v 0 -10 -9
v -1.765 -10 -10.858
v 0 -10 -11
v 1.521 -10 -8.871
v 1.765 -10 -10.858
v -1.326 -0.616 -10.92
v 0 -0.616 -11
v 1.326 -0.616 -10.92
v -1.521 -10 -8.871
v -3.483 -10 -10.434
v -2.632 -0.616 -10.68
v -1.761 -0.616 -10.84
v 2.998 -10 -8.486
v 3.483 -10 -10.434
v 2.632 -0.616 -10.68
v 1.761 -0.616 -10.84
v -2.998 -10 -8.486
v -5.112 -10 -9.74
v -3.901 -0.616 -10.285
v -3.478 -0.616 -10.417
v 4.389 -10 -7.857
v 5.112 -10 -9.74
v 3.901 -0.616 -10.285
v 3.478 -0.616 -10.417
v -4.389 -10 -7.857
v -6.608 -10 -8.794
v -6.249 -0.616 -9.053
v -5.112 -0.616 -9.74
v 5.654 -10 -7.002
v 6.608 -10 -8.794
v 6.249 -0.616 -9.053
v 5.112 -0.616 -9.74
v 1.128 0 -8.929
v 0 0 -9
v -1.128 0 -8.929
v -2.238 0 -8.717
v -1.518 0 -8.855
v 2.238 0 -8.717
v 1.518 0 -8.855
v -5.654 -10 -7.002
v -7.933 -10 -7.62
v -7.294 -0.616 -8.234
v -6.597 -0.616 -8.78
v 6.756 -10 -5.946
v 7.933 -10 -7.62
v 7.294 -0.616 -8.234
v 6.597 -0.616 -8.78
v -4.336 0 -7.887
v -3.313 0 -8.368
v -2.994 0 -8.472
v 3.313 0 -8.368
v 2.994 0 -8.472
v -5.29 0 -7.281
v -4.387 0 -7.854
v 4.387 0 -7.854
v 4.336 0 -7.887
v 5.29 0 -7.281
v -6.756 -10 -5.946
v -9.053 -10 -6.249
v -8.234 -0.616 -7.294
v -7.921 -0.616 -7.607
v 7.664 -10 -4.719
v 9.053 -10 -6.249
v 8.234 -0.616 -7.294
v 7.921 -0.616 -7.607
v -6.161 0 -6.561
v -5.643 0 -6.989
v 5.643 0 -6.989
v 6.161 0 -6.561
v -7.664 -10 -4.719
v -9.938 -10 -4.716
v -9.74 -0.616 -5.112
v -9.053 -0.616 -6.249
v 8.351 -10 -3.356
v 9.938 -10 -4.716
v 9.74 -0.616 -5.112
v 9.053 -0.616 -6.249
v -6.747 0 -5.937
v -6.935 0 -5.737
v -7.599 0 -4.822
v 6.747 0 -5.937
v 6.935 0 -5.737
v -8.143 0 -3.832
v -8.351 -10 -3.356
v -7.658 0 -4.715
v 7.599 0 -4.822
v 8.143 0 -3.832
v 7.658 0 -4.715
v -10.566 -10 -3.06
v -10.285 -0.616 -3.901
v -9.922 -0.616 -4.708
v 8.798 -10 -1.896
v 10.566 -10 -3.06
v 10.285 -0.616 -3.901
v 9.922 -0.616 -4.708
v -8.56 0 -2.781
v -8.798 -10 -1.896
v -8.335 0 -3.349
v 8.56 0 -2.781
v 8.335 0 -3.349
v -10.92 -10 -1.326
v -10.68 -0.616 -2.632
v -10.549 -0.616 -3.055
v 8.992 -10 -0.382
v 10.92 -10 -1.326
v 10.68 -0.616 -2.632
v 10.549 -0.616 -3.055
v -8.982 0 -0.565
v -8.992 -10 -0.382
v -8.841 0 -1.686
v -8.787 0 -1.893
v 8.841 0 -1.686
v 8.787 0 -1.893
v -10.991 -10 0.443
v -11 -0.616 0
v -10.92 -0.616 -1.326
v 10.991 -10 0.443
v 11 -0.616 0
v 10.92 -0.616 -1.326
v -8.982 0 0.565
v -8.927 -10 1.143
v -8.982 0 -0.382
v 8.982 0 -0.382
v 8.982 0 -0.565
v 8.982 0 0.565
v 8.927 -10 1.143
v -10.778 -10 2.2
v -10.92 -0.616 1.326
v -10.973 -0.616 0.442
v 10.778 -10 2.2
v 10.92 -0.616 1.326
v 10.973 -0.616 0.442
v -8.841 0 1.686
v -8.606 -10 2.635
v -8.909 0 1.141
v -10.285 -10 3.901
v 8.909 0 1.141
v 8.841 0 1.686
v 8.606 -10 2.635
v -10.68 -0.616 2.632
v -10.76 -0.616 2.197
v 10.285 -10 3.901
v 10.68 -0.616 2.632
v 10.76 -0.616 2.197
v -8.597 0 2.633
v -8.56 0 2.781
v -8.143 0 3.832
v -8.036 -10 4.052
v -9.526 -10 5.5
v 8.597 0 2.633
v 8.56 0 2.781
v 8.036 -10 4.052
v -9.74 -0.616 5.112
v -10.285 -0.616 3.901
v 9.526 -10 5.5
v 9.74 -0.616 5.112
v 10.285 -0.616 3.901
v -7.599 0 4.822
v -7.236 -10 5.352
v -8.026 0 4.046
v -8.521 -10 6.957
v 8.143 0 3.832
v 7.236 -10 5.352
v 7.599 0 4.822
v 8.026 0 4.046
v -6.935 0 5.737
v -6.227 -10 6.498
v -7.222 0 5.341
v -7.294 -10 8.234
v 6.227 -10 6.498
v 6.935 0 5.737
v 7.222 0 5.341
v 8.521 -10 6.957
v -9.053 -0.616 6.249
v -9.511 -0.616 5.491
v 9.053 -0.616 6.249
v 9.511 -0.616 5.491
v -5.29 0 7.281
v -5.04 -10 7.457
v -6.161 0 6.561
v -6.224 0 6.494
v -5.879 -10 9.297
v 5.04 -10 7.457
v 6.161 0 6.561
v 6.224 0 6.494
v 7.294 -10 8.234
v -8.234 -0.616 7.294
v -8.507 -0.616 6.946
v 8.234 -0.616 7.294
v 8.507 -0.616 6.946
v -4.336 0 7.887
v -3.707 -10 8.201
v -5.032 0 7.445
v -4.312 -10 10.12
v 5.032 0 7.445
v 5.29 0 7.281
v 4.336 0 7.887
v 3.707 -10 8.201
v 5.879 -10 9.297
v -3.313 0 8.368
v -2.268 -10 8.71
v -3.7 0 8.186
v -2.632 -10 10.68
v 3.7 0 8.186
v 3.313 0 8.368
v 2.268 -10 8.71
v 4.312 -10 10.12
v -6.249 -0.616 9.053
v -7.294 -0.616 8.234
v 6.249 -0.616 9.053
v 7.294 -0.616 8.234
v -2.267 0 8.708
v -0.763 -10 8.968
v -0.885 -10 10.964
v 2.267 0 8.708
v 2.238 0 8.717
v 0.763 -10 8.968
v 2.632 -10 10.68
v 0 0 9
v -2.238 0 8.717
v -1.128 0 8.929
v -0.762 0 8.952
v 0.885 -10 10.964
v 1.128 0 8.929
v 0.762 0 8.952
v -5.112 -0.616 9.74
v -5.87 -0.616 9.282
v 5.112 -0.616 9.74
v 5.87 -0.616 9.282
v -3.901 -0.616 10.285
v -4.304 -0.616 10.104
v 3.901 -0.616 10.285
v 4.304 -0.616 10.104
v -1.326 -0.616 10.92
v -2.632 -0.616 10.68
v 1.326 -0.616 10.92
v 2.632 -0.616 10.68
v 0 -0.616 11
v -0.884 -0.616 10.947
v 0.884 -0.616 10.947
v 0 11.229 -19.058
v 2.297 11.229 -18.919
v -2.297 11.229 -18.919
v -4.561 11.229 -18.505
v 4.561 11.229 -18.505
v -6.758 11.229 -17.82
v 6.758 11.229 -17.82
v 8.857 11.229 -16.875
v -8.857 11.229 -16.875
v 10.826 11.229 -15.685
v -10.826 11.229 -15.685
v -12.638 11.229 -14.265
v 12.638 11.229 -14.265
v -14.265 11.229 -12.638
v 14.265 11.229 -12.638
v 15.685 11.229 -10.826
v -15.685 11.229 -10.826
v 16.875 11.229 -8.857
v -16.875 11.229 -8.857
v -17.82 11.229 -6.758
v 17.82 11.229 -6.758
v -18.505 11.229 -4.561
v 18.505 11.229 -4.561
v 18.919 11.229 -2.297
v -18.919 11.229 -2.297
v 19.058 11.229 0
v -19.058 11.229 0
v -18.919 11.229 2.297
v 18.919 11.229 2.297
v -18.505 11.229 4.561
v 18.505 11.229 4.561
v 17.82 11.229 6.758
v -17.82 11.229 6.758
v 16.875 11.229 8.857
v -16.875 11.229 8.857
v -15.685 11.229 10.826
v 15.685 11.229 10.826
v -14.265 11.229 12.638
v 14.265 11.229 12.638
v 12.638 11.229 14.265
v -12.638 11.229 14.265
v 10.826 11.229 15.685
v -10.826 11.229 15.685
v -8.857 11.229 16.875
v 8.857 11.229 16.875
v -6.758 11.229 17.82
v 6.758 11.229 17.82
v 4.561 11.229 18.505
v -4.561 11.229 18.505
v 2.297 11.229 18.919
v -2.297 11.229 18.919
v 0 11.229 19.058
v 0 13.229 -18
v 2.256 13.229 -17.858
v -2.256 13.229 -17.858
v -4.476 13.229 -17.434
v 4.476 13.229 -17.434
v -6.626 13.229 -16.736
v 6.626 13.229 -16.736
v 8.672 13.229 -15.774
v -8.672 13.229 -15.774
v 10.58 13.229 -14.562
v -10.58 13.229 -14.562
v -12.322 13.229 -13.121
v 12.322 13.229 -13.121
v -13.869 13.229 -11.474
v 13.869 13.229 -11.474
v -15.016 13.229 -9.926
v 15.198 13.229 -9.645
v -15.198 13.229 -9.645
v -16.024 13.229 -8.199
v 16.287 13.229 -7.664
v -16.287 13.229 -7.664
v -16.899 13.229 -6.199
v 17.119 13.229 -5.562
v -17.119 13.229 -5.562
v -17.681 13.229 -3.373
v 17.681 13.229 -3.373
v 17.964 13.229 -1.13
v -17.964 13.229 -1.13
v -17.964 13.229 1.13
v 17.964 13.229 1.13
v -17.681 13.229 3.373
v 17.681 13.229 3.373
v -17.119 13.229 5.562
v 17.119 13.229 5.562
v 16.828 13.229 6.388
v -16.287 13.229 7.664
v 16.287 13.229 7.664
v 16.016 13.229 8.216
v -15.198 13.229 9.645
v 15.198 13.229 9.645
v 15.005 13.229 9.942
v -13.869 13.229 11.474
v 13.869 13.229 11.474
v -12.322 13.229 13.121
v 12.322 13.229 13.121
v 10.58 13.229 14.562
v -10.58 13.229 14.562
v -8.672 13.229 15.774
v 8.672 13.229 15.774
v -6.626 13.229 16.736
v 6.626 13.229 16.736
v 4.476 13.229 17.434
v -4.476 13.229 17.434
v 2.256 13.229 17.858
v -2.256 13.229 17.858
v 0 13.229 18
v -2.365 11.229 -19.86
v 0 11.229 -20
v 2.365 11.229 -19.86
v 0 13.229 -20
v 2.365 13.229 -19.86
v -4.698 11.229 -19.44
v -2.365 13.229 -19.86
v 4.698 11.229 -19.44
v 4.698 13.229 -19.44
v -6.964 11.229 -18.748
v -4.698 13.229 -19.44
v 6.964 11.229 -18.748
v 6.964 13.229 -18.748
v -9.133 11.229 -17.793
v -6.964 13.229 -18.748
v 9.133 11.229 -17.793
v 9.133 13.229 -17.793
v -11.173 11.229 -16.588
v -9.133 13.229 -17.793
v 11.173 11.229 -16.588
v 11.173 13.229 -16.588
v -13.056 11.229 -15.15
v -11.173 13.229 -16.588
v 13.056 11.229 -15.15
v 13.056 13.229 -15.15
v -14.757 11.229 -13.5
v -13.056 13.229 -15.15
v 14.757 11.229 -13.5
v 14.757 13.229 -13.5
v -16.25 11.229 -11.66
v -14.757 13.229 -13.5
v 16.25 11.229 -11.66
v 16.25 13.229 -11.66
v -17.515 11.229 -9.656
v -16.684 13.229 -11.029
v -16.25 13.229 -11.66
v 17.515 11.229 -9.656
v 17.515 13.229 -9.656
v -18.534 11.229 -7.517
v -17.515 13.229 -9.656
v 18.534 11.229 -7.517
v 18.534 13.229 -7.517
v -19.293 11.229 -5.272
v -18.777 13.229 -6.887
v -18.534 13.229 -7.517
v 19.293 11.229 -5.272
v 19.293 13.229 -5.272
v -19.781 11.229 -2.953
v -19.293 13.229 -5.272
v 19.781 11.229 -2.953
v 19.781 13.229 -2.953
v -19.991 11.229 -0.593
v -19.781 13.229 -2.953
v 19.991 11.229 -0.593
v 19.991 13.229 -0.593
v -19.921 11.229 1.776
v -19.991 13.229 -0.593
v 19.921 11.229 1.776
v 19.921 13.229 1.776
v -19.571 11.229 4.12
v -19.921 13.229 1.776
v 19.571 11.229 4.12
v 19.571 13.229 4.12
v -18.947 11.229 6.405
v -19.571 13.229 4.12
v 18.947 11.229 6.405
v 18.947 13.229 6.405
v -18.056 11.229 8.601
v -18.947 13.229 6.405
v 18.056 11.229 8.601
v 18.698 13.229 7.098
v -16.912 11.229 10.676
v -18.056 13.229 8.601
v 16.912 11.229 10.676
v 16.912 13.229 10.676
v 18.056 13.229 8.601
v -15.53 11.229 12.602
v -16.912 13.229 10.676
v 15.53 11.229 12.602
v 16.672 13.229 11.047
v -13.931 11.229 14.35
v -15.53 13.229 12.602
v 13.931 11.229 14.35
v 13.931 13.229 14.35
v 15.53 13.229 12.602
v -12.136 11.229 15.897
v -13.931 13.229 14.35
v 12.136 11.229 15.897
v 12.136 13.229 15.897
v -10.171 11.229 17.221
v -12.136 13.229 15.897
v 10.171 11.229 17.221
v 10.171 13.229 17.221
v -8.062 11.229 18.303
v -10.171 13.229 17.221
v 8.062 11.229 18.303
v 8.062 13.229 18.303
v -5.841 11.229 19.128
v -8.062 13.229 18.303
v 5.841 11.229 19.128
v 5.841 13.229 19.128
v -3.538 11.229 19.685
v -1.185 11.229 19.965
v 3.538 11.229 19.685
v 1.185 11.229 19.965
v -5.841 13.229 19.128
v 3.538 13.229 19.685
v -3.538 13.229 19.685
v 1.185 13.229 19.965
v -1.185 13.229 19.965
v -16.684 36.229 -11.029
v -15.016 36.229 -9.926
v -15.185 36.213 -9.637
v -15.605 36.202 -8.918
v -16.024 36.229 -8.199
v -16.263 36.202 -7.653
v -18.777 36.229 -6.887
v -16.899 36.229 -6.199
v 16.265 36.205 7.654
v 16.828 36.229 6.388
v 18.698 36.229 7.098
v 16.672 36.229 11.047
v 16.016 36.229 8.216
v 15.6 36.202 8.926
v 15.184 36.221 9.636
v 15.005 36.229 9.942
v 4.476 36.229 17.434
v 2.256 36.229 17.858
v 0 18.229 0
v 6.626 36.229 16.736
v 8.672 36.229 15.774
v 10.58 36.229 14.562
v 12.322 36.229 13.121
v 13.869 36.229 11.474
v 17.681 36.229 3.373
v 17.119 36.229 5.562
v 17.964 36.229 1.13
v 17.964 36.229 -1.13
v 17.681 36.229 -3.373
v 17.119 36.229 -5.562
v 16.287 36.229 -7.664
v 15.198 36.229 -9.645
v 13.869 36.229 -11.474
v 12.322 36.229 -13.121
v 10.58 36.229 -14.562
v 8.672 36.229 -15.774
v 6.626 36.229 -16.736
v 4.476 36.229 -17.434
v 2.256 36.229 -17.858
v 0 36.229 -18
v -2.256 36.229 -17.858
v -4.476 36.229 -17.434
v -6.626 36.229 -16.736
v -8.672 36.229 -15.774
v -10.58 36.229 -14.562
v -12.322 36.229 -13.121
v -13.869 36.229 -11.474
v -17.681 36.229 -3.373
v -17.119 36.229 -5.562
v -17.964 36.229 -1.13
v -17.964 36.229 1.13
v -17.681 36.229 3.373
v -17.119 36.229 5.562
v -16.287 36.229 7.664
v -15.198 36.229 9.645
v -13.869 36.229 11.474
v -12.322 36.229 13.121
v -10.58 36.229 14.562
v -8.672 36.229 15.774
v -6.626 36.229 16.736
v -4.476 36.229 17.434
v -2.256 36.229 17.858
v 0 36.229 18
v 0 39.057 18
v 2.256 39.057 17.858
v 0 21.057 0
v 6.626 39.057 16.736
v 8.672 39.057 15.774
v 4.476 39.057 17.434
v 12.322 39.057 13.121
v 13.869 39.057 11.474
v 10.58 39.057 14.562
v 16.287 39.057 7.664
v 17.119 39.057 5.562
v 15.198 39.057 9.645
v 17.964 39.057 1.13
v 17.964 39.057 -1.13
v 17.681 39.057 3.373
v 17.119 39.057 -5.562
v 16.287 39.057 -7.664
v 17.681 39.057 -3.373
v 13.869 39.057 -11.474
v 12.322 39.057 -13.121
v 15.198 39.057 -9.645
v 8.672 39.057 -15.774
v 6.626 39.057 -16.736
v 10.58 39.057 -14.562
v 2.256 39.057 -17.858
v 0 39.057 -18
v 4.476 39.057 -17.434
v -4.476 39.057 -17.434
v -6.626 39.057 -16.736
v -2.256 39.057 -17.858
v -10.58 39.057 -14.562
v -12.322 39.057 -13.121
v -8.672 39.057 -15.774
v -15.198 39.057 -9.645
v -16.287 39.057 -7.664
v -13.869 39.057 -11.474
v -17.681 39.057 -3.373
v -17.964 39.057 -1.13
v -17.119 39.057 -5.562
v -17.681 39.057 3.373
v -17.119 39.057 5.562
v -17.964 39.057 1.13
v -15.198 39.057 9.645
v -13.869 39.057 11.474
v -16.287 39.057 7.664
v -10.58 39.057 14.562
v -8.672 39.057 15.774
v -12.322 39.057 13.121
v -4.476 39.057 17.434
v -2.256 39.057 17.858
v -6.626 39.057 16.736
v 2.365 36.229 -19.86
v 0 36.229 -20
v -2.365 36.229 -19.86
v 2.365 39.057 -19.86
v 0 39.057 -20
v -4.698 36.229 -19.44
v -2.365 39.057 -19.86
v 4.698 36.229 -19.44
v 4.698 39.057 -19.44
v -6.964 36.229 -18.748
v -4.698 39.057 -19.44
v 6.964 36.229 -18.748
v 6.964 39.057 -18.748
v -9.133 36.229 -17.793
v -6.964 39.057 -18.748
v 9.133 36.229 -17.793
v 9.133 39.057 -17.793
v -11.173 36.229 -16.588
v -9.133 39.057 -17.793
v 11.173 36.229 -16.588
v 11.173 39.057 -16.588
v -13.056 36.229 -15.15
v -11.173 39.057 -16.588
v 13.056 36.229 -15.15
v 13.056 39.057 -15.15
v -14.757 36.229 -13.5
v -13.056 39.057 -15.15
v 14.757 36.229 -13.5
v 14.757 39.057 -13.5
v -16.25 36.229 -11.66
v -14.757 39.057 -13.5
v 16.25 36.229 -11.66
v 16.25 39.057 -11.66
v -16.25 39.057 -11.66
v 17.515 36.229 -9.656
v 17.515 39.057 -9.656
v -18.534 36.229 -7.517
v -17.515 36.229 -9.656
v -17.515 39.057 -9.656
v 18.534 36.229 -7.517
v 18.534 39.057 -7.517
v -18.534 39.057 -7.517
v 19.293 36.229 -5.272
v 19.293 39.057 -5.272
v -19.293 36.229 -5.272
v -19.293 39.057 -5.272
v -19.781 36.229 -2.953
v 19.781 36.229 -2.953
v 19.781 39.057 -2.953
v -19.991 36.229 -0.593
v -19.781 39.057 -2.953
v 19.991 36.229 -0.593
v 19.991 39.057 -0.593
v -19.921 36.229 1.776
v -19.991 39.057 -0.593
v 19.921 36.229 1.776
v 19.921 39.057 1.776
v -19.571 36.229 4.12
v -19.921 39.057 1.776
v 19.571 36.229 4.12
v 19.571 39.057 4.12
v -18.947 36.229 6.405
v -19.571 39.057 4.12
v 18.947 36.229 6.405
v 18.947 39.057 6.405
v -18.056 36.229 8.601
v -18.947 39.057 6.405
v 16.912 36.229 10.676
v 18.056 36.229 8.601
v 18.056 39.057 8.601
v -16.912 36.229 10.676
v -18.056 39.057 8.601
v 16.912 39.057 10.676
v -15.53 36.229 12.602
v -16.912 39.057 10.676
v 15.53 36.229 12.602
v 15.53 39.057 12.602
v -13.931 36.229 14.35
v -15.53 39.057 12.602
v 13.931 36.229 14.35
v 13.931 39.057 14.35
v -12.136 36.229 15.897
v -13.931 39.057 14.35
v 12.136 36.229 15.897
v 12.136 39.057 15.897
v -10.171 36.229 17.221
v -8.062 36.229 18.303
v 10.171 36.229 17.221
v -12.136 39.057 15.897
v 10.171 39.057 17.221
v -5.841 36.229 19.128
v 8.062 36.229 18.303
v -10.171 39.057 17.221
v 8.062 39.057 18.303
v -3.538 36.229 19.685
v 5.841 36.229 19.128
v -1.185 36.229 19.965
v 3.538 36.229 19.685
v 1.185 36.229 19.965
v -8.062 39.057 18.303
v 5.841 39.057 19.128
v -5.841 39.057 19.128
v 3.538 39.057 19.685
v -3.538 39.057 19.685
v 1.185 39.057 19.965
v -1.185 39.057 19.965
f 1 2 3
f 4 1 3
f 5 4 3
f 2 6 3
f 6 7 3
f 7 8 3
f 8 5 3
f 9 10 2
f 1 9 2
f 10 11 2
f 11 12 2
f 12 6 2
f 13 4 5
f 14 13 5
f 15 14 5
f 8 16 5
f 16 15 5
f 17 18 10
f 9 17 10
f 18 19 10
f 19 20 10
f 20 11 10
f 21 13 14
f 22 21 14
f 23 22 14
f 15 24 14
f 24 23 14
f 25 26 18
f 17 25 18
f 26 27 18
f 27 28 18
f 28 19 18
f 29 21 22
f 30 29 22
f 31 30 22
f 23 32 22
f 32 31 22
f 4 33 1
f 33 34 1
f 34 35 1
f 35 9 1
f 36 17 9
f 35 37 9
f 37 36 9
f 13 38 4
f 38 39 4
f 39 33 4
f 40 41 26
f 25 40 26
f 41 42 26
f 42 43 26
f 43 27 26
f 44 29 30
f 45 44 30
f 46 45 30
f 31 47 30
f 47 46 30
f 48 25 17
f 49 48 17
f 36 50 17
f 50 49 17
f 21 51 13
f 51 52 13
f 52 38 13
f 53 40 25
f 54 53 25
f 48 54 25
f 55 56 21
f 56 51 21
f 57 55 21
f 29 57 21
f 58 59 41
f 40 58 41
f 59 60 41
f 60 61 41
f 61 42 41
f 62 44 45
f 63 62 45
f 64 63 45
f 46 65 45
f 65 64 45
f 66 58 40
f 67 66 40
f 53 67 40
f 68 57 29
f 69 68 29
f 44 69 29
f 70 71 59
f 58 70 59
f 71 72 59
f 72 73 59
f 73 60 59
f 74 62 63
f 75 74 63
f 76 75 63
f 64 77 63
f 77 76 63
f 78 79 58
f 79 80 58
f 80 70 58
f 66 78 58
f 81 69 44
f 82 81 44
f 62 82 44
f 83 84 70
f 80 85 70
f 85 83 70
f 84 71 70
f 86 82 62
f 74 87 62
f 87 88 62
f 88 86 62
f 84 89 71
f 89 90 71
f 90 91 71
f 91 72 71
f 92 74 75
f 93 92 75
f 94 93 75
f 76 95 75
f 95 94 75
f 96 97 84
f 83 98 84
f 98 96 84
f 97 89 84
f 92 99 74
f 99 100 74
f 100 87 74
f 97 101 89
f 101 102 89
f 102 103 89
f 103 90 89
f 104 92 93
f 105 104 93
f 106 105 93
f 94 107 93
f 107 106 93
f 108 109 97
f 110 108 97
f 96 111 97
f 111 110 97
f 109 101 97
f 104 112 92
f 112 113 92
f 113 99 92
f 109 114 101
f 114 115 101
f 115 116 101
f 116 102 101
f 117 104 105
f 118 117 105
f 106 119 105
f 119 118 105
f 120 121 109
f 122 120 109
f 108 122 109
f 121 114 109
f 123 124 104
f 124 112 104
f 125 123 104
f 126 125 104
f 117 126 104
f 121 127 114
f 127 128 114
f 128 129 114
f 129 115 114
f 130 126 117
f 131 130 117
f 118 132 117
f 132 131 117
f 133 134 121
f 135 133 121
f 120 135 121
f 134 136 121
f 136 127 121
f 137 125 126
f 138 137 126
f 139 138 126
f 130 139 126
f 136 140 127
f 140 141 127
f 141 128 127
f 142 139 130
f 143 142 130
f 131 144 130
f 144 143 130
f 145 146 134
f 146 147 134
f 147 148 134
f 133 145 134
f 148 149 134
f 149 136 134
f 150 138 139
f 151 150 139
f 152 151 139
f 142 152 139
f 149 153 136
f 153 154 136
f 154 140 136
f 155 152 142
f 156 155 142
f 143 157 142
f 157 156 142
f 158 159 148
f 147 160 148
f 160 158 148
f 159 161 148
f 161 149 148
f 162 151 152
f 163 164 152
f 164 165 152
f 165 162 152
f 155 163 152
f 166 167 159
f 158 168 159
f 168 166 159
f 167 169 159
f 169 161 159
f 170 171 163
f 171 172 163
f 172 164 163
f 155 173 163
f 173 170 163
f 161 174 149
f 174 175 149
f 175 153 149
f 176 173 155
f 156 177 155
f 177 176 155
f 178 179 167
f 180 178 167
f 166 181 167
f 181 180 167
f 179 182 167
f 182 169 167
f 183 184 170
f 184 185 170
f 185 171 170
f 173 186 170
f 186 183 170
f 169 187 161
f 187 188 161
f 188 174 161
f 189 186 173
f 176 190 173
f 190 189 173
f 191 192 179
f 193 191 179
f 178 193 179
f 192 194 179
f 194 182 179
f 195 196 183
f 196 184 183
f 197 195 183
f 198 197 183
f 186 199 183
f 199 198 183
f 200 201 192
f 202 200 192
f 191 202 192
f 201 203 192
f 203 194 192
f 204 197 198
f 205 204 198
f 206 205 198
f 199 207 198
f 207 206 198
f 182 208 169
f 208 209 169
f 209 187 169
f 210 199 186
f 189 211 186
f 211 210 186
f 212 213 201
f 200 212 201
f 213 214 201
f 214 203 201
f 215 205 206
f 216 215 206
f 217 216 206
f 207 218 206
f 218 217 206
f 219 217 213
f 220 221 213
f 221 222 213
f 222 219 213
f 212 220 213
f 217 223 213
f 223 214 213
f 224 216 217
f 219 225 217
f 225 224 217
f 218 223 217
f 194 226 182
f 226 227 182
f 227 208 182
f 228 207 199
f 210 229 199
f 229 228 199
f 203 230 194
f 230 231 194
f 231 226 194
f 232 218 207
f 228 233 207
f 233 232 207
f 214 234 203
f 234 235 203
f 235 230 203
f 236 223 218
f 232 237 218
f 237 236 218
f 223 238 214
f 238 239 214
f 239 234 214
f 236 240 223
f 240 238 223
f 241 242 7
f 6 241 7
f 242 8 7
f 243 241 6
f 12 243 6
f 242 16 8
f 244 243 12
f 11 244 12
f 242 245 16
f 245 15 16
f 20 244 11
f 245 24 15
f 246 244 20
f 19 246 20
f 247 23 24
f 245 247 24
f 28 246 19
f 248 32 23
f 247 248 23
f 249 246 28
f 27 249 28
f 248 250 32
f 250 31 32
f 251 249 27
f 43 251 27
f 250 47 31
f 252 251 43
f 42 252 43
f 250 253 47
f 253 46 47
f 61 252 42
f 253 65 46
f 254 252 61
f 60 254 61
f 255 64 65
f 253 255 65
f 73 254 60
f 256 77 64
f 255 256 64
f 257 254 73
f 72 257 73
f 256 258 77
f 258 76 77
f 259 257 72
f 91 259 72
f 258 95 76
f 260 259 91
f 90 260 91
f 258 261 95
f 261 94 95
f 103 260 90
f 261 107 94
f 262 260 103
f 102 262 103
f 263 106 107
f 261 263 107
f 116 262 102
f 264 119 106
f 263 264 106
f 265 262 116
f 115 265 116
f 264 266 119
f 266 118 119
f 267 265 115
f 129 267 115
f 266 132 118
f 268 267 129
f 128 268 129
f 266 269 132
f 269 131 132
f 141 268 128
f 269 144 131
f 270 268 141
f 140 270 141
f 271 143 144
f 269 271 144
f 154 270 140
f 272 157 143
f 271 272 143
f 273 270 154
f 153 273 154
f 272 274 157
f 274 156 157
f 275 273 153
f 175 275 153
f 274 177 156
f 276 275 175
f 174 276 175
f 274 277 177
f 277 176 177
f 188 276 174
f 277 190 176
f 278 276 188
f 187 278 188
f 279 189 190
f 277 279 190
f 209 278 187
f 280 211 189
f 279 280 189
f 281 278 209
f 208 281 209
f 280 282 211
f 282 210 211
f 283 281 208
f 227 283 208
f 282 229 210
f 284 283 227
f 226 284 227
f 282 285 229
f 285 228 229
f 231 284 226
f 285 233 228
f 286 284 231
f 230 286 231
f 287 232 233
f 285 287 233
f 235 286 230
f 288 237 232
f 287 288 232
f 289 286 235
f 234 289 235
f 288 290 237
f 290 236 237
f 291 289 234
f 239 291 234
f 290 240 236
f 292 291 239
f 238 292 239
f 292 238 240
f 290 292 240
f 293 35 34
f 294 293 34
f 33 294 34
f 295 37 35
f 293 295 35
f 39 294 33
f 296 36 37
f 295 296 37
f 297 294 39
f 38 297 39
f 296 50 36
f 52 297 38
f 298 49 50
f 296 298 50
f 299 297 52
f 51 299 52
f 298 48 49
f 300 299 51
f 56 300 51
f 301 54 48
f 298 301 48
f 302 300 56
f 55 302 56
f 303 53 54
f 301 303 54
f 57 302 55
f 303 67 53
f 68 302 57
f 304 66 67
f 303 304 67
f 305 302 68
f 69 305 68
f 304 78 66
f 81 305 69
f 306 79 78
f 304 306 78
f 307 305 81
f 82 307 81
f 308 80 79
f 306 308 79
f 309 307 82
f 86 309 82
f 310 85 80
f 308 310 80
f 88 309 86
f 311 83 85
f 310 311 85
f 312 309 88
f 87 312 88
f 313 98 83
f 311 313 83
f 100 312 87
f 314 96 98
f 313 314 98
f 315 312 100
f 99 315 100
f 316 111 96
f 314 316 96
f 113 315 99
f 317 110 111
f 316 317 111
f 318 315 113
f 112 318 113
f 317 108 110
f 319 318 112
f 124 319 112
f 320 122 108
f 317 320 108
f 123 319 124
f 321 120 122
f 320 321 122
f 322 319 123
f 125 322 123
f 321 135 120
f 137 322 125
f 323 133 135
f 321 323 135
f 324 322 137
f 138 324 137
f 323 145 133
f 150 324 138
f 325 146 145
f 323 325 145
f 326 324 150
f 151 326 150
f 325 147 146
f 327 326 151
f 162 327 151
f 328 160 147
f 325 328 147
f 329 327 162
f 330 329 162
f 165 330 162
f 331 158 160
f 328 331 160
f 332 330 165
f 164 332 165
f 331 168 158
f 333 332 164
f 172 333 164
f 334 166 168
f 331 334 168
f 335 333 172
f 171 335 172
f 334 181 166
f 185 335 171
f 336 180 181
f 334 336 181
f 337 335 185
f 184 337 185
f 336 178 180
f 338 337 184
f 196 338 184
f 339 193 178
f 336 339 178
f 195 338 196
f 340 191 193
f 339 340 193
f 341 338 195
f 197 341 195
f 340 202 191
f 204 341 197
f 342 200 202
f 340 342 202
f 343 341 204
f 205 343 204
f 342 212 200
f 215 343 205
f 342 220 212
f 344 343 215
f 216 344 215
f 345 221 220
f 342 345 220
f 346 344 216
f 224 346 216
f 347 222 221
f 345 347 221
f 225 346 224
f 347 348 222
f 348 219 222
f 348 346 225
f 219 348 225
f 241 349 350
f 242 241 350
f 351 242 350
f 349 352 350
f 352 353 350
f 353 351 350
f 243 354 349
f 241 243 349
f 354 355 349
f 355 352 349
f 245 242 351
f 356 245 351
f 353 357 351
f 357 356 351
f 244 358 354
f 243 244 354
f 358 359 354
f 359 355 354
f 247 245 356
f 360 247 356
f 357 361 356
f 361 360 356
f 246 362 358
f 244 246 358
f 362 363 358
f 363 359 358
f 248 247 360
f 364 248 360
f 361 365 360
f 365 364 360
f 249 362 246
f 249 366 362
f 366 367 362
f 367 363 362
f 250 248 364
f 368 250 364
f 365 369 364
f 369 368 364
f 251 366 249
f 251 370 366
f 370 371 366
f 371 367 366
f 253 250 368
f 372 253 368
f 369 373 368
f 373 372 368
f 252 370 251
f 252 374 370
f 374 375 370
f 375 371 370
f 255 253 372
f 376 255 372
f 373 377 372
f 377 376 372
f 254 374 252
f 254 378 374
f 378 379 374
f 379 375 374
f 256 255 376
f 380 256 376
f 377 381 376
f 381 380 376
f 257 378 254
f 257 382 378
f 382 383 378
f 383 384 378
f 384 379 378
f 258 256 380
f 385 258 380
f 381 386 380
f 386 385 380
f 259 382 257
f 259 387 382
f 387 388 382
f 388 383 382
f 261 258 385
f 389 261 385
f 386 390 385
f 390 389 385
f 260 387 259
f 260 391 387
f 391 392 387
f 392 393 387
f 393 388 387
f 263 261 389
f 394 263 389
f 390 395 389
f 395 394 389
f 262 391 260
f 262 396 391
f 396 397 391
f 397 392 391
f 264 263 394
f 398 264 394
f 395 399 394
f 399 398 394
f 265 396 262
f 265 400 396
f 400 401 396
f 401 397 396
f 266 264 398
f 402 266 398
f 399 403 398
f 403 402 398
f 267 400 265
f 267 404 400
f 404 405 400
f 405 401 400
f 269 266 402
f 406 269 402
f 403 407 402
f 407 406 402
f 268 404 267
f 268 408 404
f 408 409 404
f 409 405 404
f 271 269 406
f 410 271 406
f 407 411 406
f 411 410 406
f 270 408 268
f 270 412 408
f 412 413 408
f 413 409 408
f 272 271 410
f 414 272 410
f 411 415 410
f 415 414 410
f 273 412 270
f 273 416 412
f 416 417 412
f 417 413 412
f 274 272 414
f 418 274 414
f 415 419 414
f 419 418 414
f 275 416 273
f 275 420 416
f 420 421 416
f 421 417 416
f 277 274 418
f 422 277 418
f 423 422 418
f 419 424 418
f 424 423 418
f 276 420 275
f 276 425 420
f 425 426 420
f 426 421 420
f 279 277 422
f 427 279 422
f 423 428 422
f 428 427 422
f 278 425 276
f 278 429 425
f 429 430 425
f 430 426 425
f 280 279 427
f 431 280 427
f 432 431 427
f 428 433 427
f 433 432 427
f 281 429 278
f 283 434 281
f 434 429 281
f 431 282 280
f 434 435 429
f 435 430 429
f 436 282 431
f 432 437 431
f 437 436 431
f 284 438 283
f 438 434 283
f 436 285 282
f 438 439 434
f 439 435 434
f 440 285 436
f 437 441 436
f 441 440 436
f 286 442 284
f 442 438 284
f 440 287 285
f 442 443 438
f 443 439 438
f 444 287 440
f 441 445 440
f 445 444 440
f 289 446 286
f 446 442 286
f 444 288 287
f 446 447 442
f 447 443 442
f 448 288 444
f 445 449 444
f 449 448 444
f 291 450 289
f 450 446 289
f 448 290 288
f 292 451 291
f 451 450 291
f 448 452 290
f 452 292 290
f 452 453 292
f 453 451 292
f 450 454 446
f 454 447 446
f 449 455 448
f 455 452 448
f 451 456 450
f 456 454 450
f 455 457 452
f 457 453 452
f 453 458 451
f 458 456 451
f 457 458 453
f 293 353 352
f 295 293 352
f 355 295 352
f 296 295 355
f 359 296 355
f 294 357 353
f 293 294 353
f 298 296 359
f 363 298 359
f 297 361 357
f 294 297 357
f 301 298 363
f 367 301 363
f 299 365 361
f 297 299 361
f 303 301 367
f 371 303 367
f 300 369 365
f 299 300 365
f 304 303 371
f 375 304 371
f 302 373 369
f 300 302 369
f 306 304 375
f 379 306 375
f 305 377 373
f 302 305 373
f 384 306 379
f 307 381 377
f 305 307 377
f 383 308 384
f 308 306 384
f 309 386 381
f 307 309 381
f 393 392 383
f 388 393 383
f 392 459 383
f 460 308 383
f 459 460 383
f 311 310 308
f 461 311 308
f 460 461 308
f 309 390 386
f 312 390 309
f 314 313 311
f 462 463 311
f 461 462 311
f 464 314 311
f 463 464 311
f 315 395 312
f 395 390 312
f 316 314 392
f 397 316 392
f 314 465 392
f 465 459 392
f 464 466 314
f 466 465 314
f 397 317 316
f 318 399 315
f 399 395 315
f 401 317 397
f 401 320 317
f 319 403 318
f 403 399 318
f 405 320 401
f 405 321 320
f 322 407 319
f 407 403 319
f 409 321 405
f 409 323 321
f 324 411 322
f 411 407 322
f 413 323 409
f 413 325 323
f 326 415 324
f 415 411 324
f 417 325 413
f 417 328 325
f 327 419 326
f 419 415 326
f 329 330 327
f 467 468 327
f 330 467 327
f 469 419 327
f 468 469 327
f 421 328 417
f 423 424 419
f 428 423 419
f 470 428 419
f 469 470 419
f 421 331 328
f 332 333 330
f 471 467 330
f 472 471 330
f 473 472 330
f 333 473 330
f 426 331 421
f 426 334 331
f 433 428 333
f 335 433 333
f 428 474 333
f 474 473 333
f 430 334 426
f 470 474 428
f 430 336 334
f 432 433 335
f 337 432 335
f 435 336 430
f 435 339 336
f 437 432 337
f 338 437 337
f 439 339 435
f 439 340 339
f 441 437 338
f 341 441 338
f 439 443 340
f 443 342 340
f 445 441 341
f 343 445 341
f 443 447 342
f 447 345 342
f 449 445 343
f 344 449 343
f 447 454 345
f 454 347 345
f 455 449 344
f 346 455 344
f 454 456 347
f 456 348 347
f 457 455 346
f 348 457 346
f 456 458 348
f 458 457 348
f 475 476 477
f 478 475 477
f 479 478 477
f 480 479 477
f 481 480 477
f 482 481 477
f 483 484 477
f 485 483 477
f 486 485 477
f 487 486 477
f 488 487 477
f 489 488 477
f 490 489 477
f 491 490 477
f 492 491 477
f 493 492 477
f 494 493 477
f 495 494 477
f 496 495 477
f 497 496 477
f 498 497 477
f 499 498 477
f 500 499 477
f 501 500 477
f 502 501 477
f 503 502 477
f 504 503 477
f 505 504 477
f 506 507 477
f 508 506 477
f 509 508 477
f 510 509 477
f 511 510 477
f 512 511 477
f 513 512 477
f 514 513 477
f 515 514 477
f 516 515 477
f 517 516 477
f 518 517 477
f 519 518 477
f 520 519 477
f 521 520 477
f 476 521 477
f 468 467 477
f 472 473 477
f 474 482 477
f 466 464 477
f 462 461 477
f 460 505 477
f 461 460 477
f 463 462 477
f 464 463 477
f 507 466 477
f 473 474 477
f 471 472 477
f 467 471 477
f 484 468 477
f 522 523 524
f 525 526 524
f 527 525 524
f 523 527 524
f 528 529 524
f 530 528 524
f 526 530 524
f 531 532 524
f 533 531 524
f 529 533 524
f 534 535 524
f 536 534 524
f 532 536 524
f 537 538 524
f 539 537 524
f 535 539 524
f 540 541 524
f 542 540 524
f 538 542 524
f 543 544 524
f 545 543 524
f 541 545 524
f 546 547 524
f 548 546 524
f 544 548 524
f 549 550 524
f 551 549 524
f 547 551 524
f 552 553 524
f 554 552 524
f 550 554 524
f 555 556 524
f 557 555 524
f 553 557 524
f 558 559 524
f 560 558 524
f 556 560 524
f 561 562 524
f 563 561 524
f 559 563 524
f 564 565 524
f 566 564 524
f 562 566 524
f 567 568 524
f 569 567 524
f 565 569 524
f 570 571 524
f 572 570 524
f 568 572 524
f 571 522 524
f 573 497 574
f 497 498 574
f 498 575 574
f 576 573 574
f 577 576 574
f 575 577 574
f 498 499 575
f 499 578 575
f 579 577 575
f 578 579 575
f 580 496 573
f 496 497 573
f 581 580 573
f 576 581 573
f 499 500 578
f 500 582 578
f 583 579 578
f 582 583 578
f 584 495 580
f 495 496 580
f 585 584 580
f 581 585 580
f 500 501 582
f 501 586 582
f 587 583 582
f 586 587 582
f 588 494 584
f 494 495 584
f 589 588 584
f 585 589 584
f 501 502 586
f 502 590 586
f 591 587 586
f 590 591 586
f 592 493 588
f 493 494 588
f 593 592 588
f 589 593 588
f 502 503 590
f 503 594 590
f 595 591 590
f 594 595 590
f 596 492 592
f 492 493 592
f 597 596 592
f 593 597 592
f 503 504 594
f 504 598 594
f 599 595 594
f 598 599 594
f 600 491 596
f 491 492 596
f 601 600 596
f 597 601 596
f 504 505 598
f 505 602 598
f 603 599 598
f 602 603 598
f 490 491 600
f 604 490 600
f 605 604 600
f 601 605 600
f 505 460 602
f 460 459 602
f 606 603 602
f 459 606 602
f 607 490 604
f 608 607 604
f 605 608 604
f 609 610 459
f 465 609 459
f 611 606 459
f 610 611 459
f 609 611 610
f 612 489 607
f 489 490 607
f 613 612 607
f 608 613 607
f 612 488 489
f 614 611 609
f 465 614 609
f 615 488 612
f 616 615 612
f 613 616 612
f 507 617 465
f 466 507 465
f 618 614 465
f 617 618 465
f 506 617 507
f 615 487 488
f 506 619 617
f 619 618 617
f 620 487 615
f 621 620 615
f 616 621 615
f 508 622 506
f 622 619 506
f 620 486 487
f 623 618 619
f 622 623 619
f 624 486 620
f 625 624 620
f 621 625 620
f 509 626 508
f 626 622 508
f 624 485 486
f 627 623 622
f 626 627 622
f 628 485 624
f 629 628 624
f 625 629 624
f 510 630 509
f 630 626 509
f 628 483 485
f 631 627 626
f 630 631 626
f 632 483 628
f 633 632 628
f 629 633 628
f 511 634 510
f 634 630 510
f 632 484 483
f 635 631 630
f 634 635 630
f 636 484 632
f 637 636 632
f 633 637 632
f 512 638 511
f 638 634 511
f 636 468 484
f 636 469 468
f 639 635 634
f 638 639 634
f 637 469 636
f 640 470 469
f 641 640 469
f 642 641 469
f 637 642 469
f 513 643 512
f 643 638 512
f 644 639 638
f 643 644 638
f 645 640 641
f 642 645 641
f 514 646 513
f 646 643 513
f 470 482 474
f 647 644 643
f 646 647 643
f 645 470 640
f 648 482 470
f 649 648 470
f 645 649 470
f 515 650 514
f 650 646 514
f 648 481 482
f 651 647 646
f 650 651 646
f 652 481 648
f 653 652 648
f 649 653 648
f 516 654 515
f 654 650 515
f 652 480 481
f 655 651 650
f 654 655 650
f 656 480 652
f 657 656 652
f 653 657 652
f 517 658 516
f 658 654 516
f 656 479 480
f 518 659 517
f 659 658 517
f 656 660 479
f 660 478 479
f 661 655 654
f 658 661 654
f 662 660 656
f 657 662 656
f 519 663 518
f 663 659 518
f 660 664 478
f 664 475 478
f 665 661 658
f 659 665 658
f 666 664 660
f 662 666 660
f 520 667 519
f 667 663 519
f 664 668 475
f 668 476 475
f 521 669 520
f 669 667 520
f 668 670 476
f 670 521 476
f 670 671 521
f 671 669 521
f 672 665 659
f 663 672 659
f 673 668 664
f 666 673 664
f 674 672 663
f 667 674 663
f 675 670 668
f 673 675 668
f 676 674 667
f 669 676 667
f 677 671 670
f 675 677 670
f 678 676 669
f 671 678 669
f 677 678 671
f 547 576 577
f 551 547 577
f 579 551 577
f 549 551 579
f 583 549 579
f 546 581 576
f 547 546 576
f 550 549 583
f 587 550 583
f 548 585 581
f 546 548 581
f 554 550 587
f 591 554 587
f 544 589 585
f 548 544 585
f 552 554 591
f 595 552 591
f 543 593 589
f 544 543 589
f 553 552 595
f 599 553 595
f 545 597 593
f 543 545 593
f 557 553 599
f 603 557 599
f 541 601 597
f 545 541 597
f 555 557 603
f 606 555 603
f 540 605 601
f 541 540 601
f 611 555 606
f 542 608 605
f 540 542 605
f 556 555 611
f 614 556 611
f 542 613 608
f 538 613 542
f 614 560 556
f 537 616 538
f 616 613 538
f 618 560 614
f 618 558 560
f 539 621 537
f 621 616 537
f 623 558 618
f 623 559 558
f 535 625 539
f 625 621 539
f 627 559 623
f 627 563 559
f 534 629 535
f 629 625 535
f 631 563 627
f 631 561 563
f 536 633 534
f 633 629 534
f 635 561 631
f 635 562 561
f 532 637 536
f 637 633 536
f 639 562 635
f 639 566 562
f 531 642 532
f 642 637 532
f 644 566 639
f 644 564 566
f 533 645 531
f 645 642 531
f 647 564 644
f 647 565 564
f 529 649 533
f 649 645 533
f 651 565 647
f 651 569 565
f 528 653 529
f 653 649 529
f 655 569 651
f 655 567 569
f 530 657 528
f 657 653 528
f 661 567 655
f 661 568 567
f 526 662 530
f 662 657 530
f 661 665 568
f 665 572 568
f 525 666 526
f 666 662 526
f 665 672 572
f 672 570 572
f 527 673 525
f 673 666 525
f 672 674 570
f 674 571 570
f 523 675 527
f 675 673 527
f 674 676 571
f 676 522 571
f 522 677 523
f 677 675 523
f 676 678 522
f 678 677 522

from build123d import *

# Parameters (mm, degrees)
BOSS_EXTRUDE2_DEPTH = 23


with BuildPart() as part:
    # Sketch1 → Revolve-Thin3 (revolve)
    with BuildSketch(Plane.XY, mode=Mode.PRIVATE) as revolve_thin3_sk:
        Polygon((-20, 13.228756555), (-18, 13.228756555), (-9, 0), (-9, -10), (-11, -10), (-11, -0.615831877), (-19.058300524, 11.228756555), (-20, 11.228756555), align=None)
    revolve(revolve_thin3_sk.sketch.rotate(Axis((0, 0, 0), (0, 1, 0)), 270), axis=Axis((0, 0, 0), (0, 1, 0)))



with BuildPart() as body_2:
    # Sketch7 → Revolve2 (revolve)
    with BuildSketch(Plane.XY, mode=Mode.PRIVATE) as revolve2_sk:
        Polygon((0, 18.228756555), (18, 36.228756555), (20, 36.228756555), (20, 39.05718368), (18, 39.05718368), (0, 21.05718368), align=None)
    revolve(revolve2_sk.sketch.rotate(Axis((0, 0, 0), (0, 1, 0)), 270), axis=Axis((0, 0, 0), (0, 1, 0)))


with BuildPart() as part_1:
    add(part.part)

    add(body_2.part)  # Boss-Extrude2 merges body 2
    # Sketch8 → Boss-Extrude2 (add)
    with BuildSketch(Plane.XZ.offset(-36.228756555)):
        Polygon((-16.024377741, -8.198738805), (-16.898983319, -6.198738805), (-18.776648132, -6.887487561), (-16.684330841, -11.028739927), (-15.015897757, -9.925865935), align=None)
        Polygon((16.015573595, 8.215923712), (15.005241471, 9.941968034), (16.672490524, 11.046631149), (18.697980652, 7.098275814), (16.828182587, 6.388448233), align=None)
    extrude(amount=BOSS_EXTRUDE2_DEPTH)


solid = part_1.part
